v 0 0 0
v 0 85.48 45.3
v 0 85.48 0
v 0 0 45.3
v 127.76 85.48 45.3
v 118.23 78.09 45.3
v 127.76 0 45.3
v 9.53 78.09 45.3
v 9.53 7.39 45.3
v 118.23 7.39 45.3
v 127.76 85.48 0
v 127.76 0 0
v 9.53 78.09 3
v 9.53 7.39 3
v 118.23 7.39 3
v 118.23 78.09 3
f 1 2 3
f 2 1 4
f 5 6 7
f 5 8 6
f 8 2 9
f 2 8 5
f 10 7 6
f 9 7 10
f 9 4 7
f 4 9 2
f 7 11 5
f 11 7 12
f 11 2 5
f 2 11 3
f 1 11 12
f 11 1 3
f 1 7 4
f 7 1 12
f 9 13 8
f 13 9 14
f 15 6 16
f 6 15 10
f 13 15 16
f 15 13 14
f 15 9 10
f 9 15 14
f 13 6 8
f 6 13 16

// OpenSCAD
// Opentrons Tough 300 mL 1 Well Reservoir
// loadName: opentrons_tough_1_reservoir_300ml
// Auto-generated by labware_to_stl.py from Opentrons V2 labware definition

$fn = 64;

difference() {
    // ── Labware body ──────────────────────────────────────────────
    cube([127.7600, 85.4800, 45.3000]);

    // ── Well cutouts ──────────────────────────────────────────────
    // Well A1
    translate([9.5300, 7.3900, 3.0000])
        cube([108.7000, 70.7000, 43.3000]);
}
